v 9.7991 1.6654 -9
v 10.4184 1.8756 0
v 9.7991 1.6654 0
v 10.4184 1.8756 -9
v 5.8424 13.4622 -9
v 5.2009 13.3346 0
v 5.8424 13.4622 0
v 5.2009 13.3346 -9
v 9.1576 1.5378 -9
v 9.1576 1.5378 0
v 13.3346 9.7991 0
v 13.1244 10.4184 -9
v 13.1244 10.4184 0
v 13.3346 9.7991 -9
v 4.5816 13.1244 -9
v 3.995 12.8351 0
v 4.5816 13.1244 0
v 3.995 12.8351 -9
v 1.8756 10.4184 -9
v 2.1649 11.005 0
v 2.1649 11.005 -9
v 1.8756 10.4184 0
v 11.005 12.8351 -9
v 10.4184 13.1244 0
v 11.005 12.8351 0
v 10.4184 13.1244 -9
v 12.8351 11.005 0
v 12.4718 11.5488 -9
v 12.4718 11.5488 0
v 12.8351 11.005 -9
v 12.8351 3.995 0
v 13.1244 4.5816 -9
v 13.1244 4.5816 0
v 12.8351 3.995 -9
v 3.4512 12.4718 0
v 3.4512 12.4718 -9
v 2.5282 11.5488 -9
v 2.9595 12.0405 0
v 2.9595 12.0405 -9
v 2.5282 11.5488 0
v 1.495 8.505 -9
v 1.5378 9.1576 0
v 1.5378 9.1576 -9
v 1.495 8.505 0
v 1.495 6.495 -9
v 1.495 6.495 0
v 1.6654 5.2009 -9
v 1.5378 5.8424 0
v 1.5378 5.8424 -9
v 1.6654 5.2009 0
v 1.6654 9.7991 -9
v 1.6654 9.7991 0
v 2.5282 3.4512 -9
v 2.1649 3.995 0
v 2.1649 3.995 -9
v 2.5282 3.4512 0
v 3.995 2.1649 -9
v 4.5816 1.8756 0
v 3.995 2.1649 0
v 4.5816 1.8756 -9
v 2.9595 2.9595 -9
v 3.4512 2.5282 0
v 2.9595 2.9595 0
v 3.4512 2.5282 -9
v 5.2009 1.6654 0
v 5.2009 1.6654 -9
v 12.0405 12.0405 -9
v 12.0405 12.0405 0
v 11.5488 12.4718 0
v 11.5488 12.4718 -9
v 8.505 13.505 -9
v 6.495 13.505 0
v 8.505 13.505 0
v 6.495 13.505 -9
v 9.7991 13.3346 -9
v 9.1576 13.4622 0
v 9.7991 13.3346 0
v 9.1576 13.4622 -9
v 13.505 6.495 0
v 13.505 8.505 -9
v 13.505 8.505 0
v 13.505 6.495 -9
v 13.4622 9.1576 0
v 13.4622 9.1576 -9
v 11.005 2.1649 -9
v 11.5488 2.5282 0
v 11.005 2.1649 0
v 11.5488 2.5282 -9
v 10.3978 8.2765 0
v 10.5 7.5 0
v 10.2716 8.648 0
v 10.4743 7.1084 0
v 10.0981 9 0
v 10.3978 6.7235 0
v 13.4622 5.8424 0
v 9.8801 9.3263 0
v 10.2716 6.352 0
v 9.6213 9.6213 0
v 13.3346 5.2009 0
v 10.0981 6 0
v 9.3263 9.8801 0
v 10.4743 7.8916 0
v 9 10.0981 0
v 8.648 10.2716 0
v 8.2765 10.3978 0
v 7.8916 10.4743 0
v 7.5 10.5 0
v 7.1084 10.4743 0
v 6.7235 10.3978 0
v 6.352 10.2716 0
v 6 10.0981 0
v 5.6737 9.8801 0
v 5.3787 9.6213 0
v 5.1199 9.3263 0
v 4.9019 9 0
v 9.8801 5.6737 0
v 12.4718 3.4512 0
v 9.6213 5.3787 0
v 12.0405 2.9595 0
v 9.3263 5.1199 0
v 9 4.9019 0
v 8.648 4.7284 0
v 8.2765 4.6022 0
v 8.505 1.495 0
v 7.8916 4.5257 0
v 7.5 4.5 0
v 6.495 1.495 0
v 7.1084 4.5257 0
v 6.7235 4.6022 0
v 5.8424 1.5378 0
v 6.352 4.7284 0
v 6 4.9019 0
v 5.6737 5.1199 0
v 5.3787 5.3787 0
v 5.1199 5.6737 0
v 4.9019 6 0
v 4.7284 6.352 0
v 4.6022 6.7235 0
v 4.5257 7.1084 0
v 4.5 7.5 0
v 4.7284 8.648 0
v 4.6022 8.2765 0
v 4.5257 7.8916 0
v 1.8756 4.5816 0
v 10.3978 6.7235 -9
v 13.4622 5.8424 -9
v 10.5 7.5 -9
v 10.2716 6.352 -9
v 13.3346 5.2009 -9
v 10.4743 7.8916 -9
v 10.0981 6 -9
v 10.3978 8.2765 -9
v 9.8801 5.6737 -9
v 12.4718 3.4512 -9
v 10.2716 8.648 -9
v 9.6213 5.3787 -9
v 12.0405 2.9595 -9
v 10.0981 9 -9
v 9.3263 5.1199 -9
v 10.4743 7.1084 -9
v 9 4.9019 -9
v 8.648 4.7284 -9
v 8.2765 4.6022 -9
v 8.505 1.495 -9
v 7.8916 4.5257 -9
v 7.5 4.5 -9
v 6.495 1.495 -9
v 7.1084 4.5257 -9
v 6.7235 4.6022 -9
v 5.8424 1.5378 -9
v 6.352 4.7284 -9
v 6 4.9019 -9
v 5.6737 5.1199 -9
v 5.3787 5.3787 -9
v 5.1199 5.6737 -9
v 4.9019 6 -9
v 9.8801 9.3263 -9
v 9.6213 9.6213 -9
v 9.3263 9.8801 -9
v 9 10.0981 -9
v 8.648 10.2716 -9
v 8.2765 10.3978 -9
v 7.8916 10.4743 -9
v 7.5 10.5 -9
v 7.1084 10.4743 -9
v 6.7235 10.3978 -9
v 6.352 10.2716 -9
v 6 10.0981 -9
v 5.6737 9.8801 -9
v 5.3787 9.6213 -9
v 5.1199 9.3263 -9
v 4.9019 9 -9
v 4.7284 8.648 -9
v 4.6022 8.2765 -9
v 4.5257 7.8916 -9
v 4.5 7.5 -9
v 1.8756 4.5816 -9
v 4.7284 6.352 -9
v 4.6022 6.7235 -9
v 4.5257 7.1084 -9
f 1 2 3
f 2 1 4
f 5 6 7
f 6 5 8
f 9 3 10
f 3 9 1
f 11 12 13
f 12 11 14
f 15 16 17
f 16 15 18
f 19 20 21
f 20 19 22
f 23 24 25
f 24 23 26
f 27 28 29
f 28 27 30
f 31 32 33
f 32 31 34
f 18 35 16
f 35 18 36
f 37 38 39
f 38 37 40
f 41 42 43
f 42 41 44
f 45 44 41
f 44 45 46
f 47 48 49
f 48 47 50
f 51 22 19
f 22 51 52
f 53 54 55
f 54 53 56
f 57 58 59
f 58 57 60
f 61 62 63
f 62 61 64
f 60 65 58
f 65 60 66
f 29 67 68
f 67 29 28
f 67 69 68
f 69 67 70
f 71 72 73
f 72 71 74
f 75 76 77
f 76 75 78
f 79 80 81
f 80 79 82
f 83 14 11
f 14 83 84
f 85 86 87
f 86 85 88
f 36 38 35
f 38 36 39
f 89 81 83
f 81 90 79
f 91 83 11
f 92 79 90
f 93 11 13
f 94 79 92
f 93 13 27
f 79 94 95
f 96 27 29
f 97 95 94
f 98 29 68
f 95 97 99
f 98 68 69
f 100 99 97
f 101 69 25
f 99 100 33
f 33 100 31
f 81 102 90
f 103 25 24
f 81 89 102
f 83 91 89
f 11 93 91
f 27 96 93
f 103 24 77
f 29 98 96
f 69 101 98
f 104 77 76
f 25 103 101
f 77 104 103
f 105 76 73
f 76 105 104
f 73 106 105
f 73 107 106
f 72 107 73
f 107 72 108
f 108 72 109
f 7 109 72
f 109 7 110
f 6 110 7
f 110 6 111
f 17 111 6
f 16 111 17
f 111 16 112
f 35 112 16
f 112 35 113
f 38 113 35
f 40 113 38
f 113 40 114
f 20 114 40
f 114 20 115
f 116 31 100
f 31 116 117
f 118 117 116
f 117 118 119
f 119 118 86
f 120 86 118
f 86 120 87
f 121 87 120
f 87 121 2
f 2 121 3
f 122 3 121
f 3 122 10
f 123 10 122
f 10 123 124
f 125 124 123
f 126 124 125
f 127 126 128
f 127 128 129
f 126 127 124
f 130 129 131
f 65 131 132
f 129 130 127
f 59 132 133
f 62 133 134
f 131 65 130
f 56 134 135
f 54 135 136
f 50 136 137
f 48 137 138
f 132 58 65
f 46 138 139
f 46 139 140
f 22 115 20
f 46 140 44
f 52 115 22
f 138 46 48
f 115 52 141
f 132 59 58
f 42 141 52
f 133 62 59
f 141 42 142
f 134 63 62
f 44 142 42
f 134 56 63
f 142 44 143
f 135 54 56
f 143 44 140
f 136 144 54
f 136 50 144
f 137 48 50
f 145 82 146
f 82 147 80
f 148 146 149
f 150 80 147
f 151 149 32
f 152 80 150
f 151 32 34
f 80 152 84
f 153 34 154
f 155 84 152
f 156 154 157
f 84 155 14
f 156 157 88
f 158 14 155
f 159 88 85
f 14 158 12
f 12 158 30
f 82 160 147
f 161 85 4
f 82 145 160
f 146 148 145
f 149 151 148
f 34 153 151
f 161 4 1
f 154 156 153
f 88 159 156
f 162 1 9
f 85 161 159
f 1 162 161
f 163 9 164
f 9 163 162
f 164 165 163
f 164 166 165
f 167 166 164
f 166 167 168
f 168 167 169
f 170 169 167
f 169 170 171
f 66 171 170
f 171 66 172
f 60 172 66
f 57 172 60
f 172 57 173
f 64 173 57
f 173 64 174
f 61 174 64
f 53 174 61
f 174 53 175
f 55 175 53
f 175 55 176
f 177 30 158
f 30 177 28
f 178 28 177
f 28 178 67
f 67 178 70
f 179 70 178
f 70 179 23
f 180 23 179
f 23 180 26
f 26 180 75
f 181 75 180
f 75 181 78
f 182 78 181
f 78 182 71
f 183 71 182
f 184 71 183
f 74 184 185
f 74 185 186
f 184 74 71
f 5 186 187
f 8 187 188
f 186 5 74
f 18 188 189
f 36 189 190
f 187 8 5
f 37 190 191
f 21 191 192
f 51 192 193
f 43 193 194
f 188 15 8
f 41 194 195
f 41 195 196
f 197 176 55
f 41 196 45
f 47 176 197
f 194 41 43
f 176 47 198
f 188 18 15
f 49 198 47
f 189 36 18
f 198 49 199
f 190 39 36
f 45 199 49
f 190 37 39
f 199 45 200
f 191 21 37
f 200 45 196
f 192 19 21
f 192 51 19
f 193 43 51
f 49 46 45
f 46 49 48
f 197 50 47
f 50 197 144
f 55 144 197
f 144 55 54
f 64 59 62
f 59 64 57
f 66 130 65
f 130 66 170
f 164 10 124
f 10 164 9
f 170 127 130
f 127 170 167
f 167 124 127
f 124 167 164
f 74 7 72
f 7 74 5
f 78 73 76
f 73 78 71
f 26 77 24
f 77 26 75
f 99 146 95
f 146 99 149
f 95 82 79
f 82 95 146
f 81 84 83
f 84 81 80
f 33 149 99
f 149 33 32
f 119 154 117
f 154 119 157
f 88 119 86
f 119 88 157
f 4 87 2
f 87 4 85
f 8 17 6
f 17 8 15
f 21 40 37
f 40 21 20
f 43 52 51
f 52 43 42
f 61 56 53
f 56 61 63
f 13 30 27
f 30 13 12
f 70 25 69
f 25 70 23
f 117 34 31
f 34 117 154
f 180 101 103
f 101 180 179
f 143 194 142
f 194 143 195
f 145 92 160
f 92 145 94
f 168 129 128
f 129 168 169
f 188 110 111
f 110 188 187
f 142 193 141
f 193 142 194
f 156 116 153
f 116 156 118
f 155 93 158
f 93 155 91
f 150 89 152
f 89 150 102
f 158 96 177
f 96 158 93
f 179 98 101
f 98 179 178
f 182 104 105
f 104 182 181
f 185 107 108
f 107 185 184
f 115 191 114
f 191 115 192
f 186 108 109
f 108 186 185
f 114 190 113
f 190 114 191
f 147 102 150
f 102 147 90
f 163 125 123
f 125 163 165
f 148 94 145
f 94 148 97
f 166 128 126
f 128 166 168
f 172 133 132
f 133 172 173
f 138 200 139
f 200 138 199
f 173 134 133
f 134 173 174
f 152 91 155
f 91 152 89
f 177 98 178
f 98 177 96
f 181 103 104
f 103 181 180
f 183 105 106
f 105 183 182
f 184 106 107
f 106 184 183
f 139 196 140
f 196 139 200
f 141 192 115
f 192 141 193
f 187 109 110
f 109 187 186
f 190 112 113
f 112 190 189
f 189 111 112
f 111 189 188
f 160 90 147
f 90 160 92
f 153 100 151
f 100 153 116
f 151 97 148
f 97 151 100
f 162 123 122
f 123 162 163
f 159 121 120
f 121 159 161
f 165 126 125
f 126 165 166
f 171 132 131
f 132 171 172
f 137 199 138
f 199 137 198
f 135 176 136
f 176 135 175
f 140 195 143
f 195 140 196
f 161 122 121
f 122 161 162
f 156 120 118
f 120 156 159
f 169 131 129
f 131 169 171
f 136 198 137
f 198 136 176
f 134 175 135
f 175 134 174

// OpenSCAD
// Generated by SolidPython 1.1.3 on 2022-09-14 11:03:22
$fn = 48;


difference() {
	union() {
		color(alpha = 1.0000000000, c = "Gold") {
			translate(v = [7.5000000000, 7.5000000000, 0]) {
				rotate(a = [0, 0, 0]) {
					translate(v = [0, 0, -9]) {
						linear_extrude(height = 9) {
							offset(r = 5) {
								square(center = true, size = [2.0100000000, 2.0100000000]);
							}
						}
					}
				}
			}
		}
	}
	union() {
		color(alpha = 1.0000000000, c = "Gold") {
			translate(v = [7.5000000000, 7.5000000000, 0]) {
				rotate(a = [0, 0, 0]) {
					translate(v = [0, 0, -250]) {
						cylinder(h = 500, r = 3.0000000000);
					}
				}
			}
		}
	}
}
/***********************************************
*********      SolidPython code:      **********
************************************************
 
import subprocess

from solid.objects import *
from solid import scad_render_to_file, scad_render

import os

##################################################################################################################################################
##################################################################################################################################################
##################################################################################################################################################
##################################################################################################################################################
######  DIMENSION STUFF
##################################################################################################################################################
##################################################################################################################################################
##################################################################################################################################################
##################################################################################################################################################


mode = "3DPR"
#mode = "LAZE"
#mode = "TURE"
#mode = ""


######  Countersunk
countersunkM = []
WIDTH = 0
DEPTH = 1
countersunkM1width = 0; countersunkM1depth = 0; countersunkM2width = 0; countersunkM2depth = 0
countersunkM3width = 0
countersunkM3depth = 0
countersunkM4width = 0
countersunkM4depth = 0
countersunkM5width = 0
countersunkM5depth = 0
countersunkM6width = 0
countersunkM6depth = 0

######  Holes
holeM = []
holeM1 = 0
holeM2 = 0
holeM3 = 0
holeM4 = 0
holeM5 = 0
holeM6 = 0

######  Nuts
nutM = []
NUTWIDTH = 0
NUTDEPTH = 1
nutM1width = 0
nutM1depth = 0
nutM2width = 0
nutM2depth = 0
nutM3width = 0
nutM3depth = 0
nutM4width = 0
nutM4depth = 0
nutM5width = 0
nutM5depth = 0
nutM6width = 0
nutM6depth = 0

######  OOEB
ooebPinWidth = 0
ooebPinWidthWide = 0


######  Colors
colDefault = "Gold"

colOOEBbase = colDefault

colLEDRed = "red"
colWire = "gray"
    ######  Resistor
colRes = list()
colResistor = "beige"

colResBlack = "black"
colRes.append(colResBlack)
colResBrown = "brown"
colRes.append(colResBrown)
colResRed = "red"
colRes.append(colResRed)
colResOrange = "orange"
colRes.append(colResOrange)
colResYellow = "yellow"
colRes.append(colResYellow)
colResGreen = "green"
colRes.append(colResGreen)
colResBlue = "blue"
colRes.append(colResBlue)
colResPurple = "purple"
colRes.append(colResPurple)
colResGray = "gray"
colRes.append(colResGray)
colResWhite = "white"
colRes.append(colResWhite)





def changeMode(m="3DPR"):
    #print("####################################################      CHANGING MODES TO: " + m)
    global mode
    mode = m
    ######  Countersunk
    global countersunkM, countersunkM1width, countersunkM1depth, countersunkM2width, countersunkM2depth, countersunkM3width, countersunkM3depth, countersunkM4width, countersunkM4depth, countersunkM5width, countersunkM5depth, countersunkM6width, countersunkM6depth
    countersunkM = []
    countersunkM.append([0,0])
    countersunkM1width = 0 if mode== "3DPR" else 0
    countersunkM1depth = 0 if mode== "3DPR" else 0
    countersunkM.append([countersunkM1width,countersunkM1depth])
    countersunkM2width = 0 if mode== "3DPR" else 0
    countersunkM2depth = 0 if mode== "3DPR" else 0
    countersunkM.append([countersunkM2width,countersunkM2depth])
    countersunkM3width = 5.5/2+0.6 if mode== "3DPR" else 5.5/2
    countersunkM3depth = 1.7 if mode== "3DPR" else 1.7
    countersunkM.append([countersunkM3width,countersunkM3depth])
    countersunkM4width = 0 if mode== "3DPR" else 0
    countersunkM4depth = 0 if mode== "3DPR" else 0
    countersunkM.append([countersunkM4width,countersunkM4depth])
    countersunkM5width = 0 if mode== "3DPR" else 0
    countersunkM5depth = 0 if mode== "3DPR" else 0
    countersunkM.append([countersunkM5width,countersunkM5depth])
    countersunkM6width = 0 if mode== "3DPR" else 0
    countersunkM6depth = 0 if mode== "3DPR" else 0
    countersunkM.append([countersunkM6width,countersunkM6depth])
    ######  Holes
    global holeM, holeM1, holeM2, holeM3, holeM4, holeM5, holeM6, holeM7, holeM8
    holeM = []
    holeM1 = 1.2/2 if mode== "3DPR" else 1/2
    holeM2 = 2.3/2 if mode== "3DPR" else 2/2
    holeM3 = 3.4/2 if mode== "3DPR" else 3/2
    holeM4 = 4.4/2 if mode== "3DPR" else 4/2
    holeM5 = 5.4/2 if mode== "3DPR" else 5/2
    holeM6 = 6.5/2 if mode== "3DPR" else 6/2
    holeM7 = 7.5/2 if mode== "3DPR" else 7/2
    holeM8 = 8.6/2 if mode== "3DPR" else 8/2
    holeM.append(0)
    holeM.append(holeM1)
    holeM.append(holeM2)
    holeM.append(holeM3)
    holeM.append(holeM4)
    holeM.append(holeM5)
    holeM.append(holeM6)
    holeM.append(holeM7)
    holeM.append(holeM8)
    #####  Nuts
    global nutM, nutM1width, nutM1depth, nutM2width, nutM2depth, nutM3width, nutM3depth, nutM4width, nutM4depth, nutM5width, nutM5depth, nutM6width, nutM6depth
    nutM = []
    nutM.append([0,0]) 
    #M1 Nut
    nutM1width = 0
    nutM1depth = 0
    nutM.append([nutM1width,nutM1depth])    
    #M2 Nut
    nutM2width = 0
    nutM2depth = 0
    nutM.append([nutM2width,nutM2depth])    
    #M3 Nut
    nutM3width = 6.05 if mode== "3DPR" else 5.5
    nutM3depth = 2.5 if mode== "3DPR" else 2.5
    nutM.append([nutM3width,nutM3depth])    
    #M4 Nut
    nutM4width = 0
    nutM4depth = 0
    nutM.append([nutM4width,nutM4depth])    
    #M5 Nut
    nutM5width = 0
    nutM5depth = 0
    nutM.append([nutM5width,nutM5depth])    
    #M6 Nut
    nutM6width = 11 if mode== "3DPR" else 10
    nutM6depth = 5 if mode== "3DPR" else 5
    nutM.append([nutM6width,nutM6depth])    

    ######  OOEB
    global ooebPinWidth,  ooebPinWidthWide

    ooebPinWidth = 0.6
    if(mode=="3DPR" or mode=="LAZE"):
        ooebPinWidth = 0.6 + 0.6
    ooebPinWidthWide = 1.2
    if(mode=="3DPR" or mode=="LAZE"):
        ooebPinWidthWide = 1.2 + 0.6


changeMode()


""""    
holeM12D = s=="3DPR" ? 1.4/2 : 1.2/2;
holeM16D = s=="3DPR" ? 1.8/2 : 1.6/2;
holeM2 = s=="3DPR" ? 2.3/2 : 2/2;
holeM25D = s=="3DPR" ? 2.8/2 : 2.5/2;
holeM27D = s=="3DPR" ? 3.1/2 : 2.7/2;    
holeM3 = s=="3DPR" ? 3.4/2 : 3/2;
holeM35D = s=="3DPR" ? 3.9/2 : 35/2;
holeM4 = s=="3DPR" ? 4.4/2 : 4/2;
holeM5 = s=="3DPR" ? 5.4/2 : 5/2;
holeM6 = s=="3DPR" ? 6.5/2 : 6/2;
holeM6Minus = s=="3DPR" ? 5.8/2 : 5.9/2;
holeM7 = s=="3DPR" ? 7.5/2 : 7/2;
holeM8 = s=="3DPR" ? 8.6/2 : 8/2;
holeM9 = s=="3DPR" ? 9.6/2 : 9/2;
holeM10 = s=="3DPR" ? 10.6/2 : 10/2;
holeM11 = s=="3DPR" ? 11.6/2 : 11/2;
holeM12 = s=="3DPR" ? 12.6/2 : 12/2;
holeM13 = s=="3DPR" ? 13.6/2 : 13/2;
holeM14 = s=="3DPR" ? 14.6/2 : 14/2;
holeM15 = s=="3DPR" ? 15.6/2 : 15/2;
holeM16 = s=="3DPR" ? 16.6/2 : 16/2;
holeM17 = s=="3DPR" ? 17.6/2 : 17/2;
holeM18 = s=="3DPR" ? 18.6/2 : 18/2;
holeM19 = s=="3DPR" ? 19.6/2 : 19/2;
holeM20 = s=="3DPR" ? 20.6/2 : 20/2;
"""

##################################################################################################################################################
##################################################################################################################################################
##################################################################################################################################################
##################################################################################################################################################
######  REGULAR STUFF
##################################################################################################################################################
##################################################################################################################################################
##################################################################################################################################################
##################################################################################################################################################


def setMode(mode="3DPR"):
    changeMode(mode)

def getMode():
    return mode



def saveToScad(fileName, parts):
    dir =  os.path.dirname(os.path.abspath(fileName))
    Path(dir).mkdir(parents=True, exist_ok=True)
    file_out = scad_render_to_file(parts, fileName, file_header=f'$fn = 48;')


def saveToDxf(fileIn, fileOut=""):
    if fileOut == "":
        fileOut = fileIn.replace(".scad",".dxf")
    saveToFile(fileIn, fileOut)
    
def saveToPng(fileIn, fileOut="",extra="--render"):
    if fileOut == "":
        fileOut = fileIn.replace(".scad",".png")
    saveToFile(fileIn, fileOut)

def saveToStl(fileIn, fileOut=""):
    if fileOut == "":
        fileOut = fileIn.replace(".scad",".stl")
    saveToFile(fileIn, fileOut)
    
def saveToSvg(fileIn, fileOut=""):
    if fileOut == "":
        fileOut = fileIn.replace(".scad",".svg")
    saveToFile(fileIn, fileOut)

def saveToFile(fileIn, fileOut,extra=""):
    extra = extra + " --colorscheme Tomorrow"

    launchStr = 'openscad -o "' + fileOut + '"' + extra + ' "' + fileIn + '"'
    print("            saveToFile launch string: " + launchStr)
    subprocess.run(launchStr)
    x=0



def insert(item,pos=[None,None,None],x=0,y=0,z=0,ex=0,size=[None,None,None],length=0,rot=[None,None,None],rotX=0,rotY=0,rotZ=0,width=0,height=0,depth=100,rad=0,rad2=0,color=colDefault,alpha=1,OOwidth=0,OOheight=0,holes=True,negative=True, name=""):
    return OPSCInsert(item,pos,x,y,z,ex,size,length,rot,rotX,rotY,rotZ,width,height,depth,rad,rad2,color,alpha,OOwidth,OOheight,holes,negative,name)


def OPSCInsert(item,pos=[None,None,None],x=0,y=0,z=0,ex=0,size=[None,None,None],length=0,rot=[None,None,None],rotX=0,rotY=0,rotZ=0,width=0,height=0,depth=100,rad=0,rad2=0,col=colDefault,alpha=1,OOwidth=0,OOheight=0,holes=True,negative=True, name=""):
    
    """
        color(color,alpha){
            translate([x,y,z]){
                    rotate([rotX,rotY,rotZ]){
    """
    returnValue = ""

    #print(pos)

    if pos[0] != None:
        x=pos[0]
        y=pos[1]
        z=pos[2]
    if rot[0] != None:
        rotX=rot[0]
        rotY=rot[1]
        rotZ=rot[2]
    
    returnValue = color(col)(translate((x,y,z))(
                            rotate((rotX,rotY,rotZ))(
                                OPSCInsertIf(item,pos,x,y,z,ex,size,length,rot,rotX,rotY,rotZ,width,height,depth,rad,rad2,col,alpha,OOwidth,OOheight,holes,negative,name)
                            )
                        ))
                
    

    return returnValue

def OPSCInsertIf(item,pos=[None,None,None],x=0,y=0,z=0,ex=0,size=[None,None,None],length=0,rot=[None,None,None],rotX=0,rotY=0,rotZ=0,width=0,height=0,depth=100,rad=0,rad2=0,color=colDefault,alpha=1,OOwidth=0,OOheight=0,holes=True,negative=True, name=""):
    returnValue = cube([10,10,10])

    if size[0] != None:
        width=size[0]
        height=size[1]
        depth=size[2]

    #print("    OPSCInsert item:" + str(item) + " at:[" + str(x) + "," + str(y) + "," + str(z) + "] size: [" + str(width) + "," + str(height) + "," + str(depth) + "]")

    if(item=="cube"):
        returnValue =  translate([0,0,-depth/2])(cube([width,height,depth],center=True))
    elif(item=="cylinder"):        
        returnValue = translate([0,0,-depth/2])(cylinder(r=rad,h=depth,center=True))
    elif(item=="sphere"):        
        returnValue = translate([0,0,-rad])(sphere(r=rad))
    elif(item=="plane"):
        if depth == 100:
            returnValue = insert("cube",size=[1000,1000,0.1],color=color)            
        else:
            returnValue = insert("cube",size=[1000,1000,depth],color=color)                        
    elif(item=="cubeRounded"):
        if(rad == 0):
                            rad = 5
        returnValue =  translate([0,0,-depth])(
                        linear_extrude(height=depth)(                        
                            offset(r=rad)(
                                square((width-rad*2+.01,height-rad*2+.01),center=True)
                                )
                            )
        )
    ######  Countersunk
    elif(item == "countersunkM1" or item == "csM1" ):
        returnValue = OSPCgetCountersunk(rad=1)
    elif(item == "countersunkM2" or item == "csM2" ):
        returnValue = OSPCgetCountersunk(rad=2)
    elif(item == "countersunkM3" or item == "csM3" ):
        returnValue = OSPCgetCountersunk(rad=3)
    elif(item == "countersunkM4" or item == "csM4" ):
        returnValue = OSPCgetCountersunk(rad=4)
    elif(item == "countersunkM5" or item == "csM5" ):
        returnValue = OSPCgetCountersunk(rad=5)
    elif(item == "countersunkM6" or item == "csM6" ):
        returnValue = OSPCgetCountersunk(rad=6)
    elif(item == "countersunk" or item == "cs"):
        returnValue = OSPCgetCountersunk(rad=rad)


    ######  Holes    
    elif(item == "holeM1"):
        returnValue = OSPCgetHole(rad=1)
    elif(item == "holeM2"):
        returnValue = OSPCgetHole(rad=2)
    elif(item == "holeM3"):
        returnValue = OSPCgetHole(rad=3)
    elif(item == "holeM4"):
        returnValue = OSPCgetHole(rad=4)
    elif(item == "holeM5"):
        returnValue = OSPCgetHole(rad=5)
    elif(item == "holeM6"):
        returnValue = OSPCgetHole(rad=6)
    elif(item == "hole"):
        returnValue = OSPCgetHole(rad=rad)

    ######  Nuts
    elif(item == "nutM1"):
        returnValue = OSPCgetNut(rad=1,depth=depth)
    elif(item == "nutM2"):
        returnValue = OSPCgetNut(rad=2,depth=depth)
    elif(item == "nutM3"):
        returnValue = OSPCgetNut(rad=3,depth=depth)
    elif(item == "nutM4"):
        returnValue = OSPCgetNut(rad=4,depth=depth)
    elif(item == "nutM5"):
        returnValue = OSPCgetNut(rad=5,depth=depth)
    elif(item == "nutM6"):
        returnValue = OSPCgetNut(rad=6,depth=depth)
    elif(item == "nut"):
        returnValue = OSPCgetNut(rad=rad,depth=depth)
    return returnValue

                

def OSPCgetHole(rad):
    return translate([0,0,-250])(cylinder(r=holeM[rad],h=500))

def OSPCgetNut(rad,depth):
    depth = nutM[rad][NUTDEPTH] if depth==100 else depth
    returnValue = OPSChexagon(nutM[rad][NUTWIDTH],depth=depth)
    return returnValue

def OSPCgetCountersunk(rad):
    depth=countersunkM[rad][DEPTH]
    returnValue = translate([0,0,-depth])(cylinder(h=depth,r2=countersunkM[rad][WIDTH],r1=holeM[rad]))
    return returnValue

def OPSChexagon(width,depth):
    cutter = item()
    wid=width*2
    cutter.addPos(insert("cube",pos=[wid/2+width/2,0,0],size=[wid,wid,depth]))
    cutter.addPos(insert("cube",pos=[-wid/2-width/2,0,0],size=[wid,wid,depth]))

    cut = cutter.getPart()
    #print(depth)
    returnValue = difference()(
        translate([0,0,-depth/2])(cube([wid,wid,depth],center=True)),
        cut,
        rotate([0,0,60])(cut),
        rotate([0,0,-60])(cut)
    )

    return returnValue




class item:

    def __init__(self):
        self.posItems=list()
        self.negItems=list()

    def isEmpty(self):        
        testString = scad_render(self.getPart())
        #print("test String length: " + str(len(testString)))
        returnValue = False
        if len(testString) == 270:            
            returnValue = True
        return returnValue

    def addPos(self,part):
        self.posItems.append(part)
    def addNeg(self,part):
        self.negItems.append(part)

    def getPart(self):
        returnValue = difference()(
            union()(self.posItems),
            union()(self.negItems)
        )
        return returnValue

    def getLaser(self,start=0,layers=1,thickness=-3,tileDif=200):
        rv= []

        for x in range(layers):
            rv.append(translate([0,x*tileDif,0])(
                    projection()(
                        intersection()(
                            insert("plane",z=start+x*thickness),
                            self.getPart()
                        )
                    )
            )
            )
        return union()(rv)

    def getSplit(self,start=0,depth=6,tileDif=200):
        rv= []

        rv.append(translate([0,0,0])(
            intersection()(
                insert("cube",size=[100,100,depth],z=start),
                self.getPart()
            )
        )
        )

        rv.append(translate([0,tileDif,depth])(
            intersection()(
                insert("cube",size=[100,100,depth],z=start-depth),
                self.getPart()
            )
        )
        )        
        return union()(rv)


 
 
************************************************/
